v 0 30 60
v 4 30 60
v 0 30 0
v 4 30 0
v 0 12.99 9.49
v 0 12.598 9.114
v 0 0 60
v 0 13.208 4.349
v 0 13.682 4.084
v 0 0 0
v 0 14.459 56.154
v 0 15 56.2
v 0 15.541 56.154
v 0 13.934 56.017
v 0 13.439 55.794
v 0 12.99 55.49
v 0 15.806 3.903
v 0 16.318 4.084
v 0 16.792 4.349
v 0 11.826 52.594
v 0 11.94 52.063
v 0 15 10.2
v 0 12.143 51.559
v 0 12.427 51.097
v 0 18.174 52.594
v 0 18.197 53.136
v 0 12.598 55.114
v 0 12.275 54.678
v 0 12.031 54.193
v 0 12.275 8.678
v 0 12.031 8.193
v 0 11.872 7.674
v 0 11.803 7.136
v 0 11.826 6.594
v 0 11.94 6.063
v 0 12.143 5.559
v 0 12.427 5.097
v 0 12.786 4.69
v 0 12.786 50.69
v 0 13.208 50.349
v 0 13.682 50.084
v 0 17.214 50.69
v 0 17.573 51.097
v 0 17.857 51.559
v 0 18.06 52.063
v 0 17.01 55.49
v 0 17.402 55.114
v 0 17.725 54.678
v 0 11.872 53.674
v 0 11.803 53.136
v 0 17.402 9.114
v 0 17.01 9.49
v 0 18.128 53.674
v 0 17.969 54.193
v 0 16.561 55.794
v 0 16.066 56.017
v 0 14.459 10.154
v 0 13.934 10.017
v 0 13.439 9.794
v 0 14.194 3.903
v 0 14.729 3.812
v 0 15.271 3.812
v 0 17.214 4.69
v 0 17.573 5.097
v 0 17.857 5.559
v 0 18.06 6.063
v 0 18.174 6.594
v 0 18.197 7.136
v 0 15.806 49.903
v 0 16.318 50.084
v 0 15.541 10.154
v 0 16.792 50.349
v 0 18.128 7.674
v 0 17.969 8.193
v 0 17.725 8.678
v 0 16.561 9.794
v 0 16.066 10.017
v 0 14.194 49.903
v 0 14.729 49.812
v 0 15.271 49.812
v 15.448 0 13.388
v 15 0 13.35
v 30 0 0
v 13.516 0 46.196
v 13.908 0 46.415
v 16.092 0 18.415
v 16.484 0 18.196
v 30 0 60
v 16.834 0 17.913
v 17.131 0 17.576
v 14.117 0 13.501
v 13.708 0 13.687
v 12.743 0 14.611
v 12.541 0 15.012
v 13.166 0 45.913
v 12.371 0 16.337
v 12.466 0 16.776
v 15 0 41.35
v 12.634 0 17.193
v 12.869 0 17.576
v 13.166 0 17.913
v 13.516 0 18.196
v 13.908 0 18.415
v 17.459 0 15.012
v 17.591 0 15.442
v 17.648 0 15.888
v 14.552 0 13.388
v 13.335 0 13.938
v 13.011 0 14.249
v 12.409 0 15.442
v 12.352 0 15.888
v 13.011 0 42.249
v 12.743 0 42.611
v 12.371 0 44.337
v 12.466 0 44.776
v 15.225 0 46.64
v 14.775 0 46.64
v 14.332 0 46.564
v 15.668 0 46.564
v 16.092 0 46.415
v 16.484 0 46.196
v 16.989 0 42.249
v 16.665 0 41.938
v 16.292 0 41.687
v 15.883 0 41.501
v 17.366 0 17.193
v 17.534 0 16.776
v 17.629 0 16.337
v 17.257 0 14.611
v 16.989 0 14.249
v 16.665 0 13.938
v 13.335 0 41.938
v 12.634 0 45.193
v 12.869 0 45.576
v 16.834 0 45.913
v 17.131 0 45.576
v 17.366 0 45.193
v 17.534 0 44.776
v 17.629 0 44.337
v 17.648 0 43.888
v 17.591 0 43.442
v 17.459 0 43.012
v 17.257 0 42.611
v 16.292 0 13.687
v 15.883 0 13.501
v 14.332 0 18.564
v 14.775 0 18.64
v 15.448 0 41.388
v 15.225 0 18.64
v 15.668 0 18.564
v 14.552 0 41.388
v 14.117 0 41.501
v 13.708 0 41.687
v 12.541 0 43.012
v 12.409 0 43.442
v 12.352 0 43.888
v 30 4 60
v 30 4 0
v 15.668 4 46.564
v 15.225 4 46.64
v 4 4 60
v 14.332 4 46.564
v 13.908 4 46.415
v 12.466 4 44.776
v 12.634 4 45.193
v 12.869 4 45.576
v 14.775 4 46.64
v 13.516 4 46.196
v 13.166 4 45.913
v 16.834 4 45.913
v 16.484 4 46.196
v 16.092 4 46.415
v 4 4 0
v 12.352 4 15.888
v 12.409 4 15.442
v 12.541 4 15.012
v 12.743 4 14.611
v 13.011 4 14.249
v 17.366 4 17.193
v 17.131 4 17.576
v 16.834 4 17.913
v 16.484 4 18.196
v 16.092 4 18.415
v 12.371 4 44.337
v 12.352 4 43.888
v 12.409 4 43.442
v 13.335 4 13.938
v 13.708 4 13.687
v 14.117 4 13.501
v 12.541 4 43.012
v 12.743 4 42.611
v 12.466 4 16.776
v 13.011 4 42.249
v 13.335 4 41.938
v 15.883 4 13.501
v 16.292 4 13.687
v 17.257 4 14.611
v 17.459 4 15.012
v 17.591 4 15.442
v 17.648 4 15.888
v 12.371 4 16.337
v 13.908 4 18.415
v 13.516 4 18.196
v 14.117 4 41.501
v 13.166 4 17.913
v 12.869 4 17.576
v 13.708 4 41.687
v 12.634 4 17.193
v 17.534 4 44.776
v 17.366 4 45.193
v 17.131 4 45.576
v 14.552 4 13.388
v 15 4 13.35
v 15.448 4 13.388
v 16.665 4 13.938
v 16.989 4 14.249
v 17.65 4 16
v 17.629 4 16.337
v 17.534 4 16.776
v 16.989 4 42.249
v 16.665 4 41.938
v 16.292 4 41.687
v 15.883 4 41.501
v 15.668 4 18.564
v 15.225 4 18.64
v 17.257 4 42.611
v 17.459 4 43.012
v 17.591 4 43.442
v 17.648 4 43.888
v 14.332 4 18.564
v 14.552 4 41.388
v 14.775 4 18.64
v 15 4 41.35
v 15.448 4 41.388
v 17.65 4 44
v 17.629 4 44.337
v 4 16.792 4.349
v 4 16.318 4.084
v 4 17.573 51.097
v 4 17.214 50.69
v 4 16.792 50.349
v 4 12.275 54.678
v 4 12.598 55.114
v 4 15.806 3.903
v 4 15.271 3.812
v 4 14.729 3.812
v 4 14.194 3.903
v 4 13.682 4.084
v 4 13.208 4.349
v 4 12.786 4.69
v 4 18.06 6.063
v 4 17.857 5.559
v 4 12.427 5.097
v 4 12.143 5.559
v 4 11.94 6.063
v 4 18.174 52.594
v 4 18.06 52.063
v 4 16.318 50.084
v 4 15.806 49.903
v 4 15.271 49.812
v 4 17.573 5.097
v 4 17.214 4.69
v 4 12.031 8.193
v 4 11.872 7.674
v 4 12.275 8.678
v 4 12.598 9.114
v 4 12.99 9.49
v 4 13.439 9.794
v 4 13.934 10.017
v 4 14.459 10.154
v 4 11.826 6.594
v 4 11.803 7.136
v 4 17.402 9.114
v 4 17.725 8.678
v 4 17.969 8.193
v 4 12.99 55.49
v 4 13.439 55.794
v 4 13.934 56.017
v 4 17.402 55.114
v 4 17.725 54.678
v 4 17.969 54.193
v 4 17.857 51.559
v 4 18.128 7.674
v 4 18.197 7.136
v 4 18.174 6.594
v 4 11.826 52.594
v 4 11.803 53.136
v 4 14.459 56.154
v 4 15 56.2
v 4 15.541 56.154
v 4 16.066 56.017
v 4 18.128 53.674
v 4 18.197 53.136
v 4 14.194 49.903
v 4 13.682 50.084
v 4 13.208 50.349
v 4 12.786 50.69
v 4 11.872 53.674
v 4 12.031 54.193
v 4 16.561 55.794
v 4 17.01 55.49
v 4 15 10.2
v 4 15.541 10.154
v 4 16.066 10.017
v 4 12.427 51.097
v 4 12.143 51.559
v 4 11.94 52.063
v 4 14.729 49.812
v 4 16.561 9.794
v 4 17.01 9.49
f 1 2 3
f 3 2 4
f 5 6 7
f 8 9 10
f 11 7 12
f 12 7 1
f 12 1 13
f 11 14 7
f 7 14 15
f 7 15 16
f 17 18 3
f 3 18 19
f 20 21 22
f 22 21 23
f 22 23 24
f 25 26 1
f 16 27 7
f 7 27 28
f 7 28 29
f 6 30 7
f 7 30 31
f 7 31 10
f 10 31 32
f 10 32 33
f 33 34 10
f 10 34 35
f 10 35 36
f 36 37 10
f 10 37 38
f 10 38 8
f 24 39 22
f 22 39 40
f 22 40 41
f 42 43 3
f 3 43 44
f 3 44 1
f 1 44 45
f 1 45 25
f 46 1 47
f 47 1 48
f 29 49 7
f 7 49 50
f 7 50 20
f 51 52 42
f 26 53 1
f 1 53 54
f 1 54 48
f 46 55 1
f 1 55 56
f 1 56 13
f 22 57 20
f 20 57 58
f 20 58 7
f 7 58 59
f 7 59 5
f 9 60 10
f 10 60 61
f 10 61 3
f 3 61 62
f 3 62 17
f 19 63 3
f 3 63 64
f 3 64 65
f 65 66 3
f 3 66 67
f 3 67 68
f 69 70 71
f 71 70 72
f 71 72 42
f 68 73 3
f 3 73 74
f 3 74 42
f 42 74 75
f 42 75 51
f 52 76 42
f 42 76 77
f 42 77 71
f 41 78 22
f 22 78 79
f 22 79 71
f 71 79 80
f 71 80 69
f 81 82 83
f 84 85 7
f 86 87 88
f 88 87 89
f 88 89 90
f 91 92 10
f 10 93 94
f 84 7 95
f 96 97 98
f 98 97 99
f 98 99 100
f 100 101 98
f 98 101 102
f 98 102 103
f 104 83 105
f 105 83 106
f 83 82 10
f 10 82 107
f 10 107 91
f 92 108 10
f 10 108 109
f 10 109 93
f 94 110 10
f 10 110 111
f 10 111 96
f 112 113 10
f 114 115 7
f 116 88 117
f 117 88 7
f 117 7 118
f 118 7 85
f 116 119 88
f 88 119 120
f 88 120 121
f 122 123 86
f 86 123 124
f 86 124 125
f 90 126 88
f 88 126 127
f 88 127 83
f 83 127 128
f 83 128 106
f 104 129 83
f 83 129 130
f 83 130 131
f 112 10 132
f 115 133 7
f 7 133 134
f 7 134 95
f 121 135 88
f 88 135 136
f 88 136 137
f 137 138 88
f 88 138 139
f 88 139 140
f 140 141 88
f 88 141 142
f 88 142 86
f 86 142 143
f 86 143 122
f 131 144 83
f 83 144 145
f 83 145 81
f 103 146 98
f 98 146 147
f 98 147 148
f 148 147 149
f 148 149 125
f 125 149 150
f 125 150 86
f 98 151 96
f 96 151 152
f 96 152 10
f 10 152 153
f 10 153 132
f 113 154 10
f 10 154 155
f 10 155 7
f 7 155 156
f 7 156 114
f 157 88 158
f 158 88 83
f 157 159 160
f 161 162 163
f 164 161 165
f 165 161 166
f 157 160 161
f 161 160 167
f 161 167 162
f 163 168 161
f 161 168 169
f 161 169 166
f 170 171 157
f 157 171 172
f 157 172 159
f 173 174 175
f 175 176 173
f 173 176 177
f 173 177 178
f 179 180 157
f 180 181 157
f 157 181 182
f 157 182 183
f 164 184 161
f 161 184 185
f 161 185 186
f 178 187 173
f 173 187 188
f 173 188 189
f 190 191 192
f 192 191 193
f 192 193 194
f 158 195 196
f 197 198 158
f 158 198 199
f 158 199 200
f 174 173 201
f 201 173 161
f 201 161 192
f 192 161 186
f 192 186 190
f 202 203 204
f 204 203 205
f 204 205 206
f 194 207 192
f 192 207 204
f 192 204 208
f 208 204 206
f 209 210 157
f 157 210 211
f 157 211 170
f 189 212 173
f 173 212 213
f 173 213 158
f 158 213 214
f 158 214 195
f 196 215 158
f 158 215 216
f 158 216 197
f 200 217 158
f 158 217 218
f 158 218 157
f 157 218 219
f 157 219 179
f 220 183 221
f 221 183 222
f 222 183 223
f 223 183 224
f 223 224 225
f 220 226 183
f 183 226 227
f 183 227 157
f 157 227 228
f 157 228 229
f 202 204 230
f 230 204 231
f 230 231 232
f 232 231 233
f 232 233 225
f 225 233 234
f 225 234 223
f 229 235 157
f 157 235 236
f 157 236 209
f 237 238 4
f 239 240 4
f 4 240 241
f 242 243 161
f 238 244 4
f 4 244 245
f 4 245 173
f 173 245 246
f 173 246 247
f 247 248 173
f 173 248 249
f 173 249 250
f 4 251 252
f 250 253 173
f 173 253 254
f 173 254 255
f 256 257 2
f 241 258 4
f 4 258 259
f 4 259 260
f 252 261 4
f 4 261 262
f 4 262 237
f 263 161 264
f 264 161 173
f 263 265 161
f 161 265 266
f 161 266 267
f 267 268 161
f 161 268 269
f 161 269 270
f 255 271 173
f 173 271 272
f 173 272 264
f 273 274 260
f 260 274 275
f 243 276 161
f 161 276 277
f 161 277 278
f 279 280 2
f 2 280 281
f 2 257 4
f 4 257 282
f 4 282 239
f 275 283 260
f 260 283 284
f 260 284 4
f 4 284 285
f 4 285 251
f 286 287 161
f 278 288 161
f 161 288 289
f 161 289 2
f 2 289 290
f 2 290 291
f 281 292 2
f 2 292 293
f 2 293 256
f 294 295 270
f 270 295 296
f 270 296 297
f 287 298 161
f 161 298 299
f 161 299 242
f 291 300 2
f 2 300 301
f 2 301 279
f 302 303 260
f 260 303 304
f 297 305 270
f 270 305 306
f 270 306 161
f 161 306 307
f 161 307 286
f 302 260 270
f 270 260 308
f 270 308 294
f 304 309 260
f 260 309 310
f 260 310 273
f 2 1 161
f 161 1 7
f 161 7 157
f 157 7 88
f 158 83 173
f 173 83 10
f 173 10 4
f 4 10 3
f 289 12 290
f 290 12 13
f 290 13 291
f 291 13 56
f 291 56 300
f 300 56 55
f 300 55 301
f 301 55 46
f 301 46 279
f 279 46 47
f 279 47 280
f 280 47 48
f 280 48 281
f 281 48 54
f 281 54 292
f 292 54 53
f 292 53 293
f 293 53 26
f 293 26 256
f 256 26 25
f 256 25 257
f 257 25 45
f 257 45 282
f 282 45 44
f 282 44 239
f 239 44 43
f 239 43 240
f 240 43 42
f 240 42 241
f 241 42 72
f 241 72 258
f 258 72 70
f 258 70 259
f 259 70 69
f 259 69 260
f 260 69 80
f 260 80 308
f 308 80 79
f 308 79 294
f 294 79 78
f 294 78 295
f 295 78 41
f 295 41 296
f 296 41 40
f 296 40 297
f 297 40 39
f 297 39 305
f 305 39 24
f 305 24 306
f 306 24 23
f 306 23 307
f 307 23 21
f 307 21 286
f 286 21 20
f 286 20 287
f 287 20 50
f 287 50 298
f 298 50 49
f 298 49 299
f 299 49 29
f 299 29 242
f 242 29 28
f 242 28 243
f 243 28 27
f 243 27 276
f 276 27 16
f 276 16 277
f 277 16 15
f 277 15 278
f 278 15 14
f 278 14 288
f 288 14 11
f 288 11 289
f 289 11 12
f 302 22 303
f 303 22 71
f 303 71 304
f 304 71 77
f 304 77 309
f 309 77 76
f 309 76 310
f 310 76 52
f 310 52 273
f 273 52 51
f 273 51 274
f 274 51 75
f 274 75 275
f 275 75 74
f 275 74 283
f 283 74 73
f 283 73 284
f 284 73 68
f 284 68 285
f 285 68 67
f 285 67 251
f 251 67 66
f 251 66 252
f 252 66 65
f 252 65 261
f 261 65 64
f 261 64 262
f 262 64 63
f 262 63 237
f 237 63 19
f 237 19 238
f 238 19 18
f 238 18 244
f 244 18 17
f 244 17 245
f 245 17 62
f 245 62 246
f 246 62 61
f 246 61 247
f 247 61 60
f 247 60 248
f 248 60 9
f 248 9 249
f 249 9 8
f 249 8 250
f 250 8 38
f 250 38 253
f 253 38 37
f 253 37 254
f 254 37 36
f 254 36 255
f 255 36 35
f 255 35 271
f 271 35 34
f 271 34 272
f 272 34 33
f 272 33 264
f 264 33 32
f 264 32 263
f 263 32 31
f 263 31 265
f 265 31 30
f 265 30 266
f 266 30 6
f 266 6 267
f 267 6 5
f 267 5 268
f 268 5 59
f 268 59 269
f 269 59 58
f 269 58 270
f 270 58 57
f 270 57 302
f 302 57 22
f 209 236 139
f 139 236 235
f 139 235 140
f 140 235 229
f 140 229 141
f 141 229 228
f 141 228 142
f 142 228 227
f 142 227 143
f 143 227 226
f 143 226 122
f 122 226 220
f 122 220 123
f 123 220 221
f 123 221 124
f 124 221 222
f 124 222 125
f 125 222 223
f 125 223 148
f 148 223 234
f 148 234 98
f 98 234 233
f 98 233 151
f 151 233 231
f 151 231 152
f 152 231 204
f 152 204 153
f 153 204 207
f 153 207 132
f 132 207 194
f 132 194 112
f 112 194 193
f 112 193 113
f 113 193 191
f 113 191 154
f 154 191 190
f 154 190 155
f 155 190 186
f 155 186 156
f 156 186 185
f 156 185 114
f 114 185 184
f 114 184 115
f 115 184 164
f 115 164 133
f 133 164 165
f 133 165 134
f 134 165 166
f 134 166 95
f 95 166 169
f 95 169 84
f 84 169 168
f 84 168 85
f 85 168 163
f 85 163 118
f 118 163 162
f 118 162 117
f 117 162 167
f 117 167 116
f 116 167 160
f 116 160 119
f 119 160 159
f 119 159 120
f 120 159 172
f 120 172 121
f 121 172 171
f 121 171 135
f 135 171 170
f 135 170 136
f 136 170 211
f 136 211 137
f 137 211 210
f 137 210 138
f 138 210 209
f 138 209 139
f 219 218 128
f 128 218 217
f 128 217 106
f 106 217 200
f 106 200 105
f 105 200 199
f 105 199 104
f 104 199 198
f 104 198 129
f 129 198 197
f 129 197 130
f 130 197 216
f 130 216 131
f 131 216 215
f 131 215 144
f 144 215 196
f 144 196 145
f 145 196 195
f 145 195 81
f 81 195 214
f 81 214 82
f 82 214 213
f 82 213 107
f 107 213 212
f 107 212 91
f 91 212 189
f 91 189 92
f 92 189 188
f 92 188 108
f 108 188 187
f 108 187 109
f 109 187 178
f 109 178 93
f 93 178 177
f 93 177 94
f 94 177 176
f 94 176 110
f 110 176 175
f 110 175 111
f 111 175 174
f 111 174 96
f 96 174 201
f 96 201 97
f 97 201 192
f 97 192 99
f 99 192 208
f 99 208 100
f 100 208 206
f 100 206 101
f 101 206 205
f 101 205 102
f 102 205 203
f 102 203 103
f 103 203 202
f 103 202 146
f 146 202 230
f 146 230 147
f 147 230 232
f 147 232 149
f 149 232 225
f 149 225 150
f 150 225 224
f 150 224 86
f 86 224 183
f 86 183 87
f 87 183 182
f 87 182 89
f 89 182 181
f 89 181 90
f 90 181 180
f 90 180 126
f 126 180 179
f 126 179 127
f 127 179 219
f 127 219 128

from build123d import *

# Parameters (mm, degrees)
BOSS_EXTRUDE1_DEPTH      = 60
M6_CLEARANCE_HOLE1_D     = 6.4
M6_CLEARANCE_HOLE1_DEPTH = 8
M6_CLEARANCE_HOLE1_TIP   = 1.922753981
M5_CLEARANCE_HOLE1_D     = 5.3
M5_CLEARANCE_HOLE1_DEPTH = 8
M5_CLEARANCE_HOLE1_TIP   = 1.59228064


with BuildPart() as part:
    # Sketch1 → Boss-Extrude1 (new body)
    with BuildSketch(Plane.XY):
        Polygon((0, 30), (0, 0), (30, 0), (30, 4), (4, 4), (4, 30), align=None)
    extrude(amount=BOSS_EXTRUDE1_DEPTH)

    # M6 Clearance Hole1
    with Locations(Plane.ZY):
        with Locations((7, 15), (53, 15)):
            Hole(M6_CLEARANCE_HOLE1_D / 2, depth=M6_CLEARANCE_HOLE1_DEPTH)
            with Locations((0, 0, -(M6_CLEARANCE_HOLE1_DEPTH + M6_CLEARANCE_HOLE1_TIP / 2))):  # 118° drill point
                Cone(0, M6_CLEARANCE_HOLE1_D / 2, M6_CLEARANCE_HOLE1_TIP, mode=Mode.SUBTRACT)

    # M5 Clearance Hole1
    with Locations(Plane(origin=(0, 0, 0), x_dir=(-1, 0, 0), z_dir=(0, -1, 0))):
        with Locations((-15, -16), (-15, -44)):
            Hole(M5_CLEARANCE_HOLE1_D / 2, depth=M5_CLEARANCE_HOLE1_DEPTH)
            with Locations((0, 0, -(M5_CLEARANCE_HOLE1_DEPTH + M5_CLEARANCE_HOLE1_TIP / 2))):  # 118° drill point
                Cone(0, M5_CLEARANCE_HOLE1_D / 2, M5_CLEARANCE_HOLE1_TIP, mode=Mode.SUBTRACT)


solid = part.part
